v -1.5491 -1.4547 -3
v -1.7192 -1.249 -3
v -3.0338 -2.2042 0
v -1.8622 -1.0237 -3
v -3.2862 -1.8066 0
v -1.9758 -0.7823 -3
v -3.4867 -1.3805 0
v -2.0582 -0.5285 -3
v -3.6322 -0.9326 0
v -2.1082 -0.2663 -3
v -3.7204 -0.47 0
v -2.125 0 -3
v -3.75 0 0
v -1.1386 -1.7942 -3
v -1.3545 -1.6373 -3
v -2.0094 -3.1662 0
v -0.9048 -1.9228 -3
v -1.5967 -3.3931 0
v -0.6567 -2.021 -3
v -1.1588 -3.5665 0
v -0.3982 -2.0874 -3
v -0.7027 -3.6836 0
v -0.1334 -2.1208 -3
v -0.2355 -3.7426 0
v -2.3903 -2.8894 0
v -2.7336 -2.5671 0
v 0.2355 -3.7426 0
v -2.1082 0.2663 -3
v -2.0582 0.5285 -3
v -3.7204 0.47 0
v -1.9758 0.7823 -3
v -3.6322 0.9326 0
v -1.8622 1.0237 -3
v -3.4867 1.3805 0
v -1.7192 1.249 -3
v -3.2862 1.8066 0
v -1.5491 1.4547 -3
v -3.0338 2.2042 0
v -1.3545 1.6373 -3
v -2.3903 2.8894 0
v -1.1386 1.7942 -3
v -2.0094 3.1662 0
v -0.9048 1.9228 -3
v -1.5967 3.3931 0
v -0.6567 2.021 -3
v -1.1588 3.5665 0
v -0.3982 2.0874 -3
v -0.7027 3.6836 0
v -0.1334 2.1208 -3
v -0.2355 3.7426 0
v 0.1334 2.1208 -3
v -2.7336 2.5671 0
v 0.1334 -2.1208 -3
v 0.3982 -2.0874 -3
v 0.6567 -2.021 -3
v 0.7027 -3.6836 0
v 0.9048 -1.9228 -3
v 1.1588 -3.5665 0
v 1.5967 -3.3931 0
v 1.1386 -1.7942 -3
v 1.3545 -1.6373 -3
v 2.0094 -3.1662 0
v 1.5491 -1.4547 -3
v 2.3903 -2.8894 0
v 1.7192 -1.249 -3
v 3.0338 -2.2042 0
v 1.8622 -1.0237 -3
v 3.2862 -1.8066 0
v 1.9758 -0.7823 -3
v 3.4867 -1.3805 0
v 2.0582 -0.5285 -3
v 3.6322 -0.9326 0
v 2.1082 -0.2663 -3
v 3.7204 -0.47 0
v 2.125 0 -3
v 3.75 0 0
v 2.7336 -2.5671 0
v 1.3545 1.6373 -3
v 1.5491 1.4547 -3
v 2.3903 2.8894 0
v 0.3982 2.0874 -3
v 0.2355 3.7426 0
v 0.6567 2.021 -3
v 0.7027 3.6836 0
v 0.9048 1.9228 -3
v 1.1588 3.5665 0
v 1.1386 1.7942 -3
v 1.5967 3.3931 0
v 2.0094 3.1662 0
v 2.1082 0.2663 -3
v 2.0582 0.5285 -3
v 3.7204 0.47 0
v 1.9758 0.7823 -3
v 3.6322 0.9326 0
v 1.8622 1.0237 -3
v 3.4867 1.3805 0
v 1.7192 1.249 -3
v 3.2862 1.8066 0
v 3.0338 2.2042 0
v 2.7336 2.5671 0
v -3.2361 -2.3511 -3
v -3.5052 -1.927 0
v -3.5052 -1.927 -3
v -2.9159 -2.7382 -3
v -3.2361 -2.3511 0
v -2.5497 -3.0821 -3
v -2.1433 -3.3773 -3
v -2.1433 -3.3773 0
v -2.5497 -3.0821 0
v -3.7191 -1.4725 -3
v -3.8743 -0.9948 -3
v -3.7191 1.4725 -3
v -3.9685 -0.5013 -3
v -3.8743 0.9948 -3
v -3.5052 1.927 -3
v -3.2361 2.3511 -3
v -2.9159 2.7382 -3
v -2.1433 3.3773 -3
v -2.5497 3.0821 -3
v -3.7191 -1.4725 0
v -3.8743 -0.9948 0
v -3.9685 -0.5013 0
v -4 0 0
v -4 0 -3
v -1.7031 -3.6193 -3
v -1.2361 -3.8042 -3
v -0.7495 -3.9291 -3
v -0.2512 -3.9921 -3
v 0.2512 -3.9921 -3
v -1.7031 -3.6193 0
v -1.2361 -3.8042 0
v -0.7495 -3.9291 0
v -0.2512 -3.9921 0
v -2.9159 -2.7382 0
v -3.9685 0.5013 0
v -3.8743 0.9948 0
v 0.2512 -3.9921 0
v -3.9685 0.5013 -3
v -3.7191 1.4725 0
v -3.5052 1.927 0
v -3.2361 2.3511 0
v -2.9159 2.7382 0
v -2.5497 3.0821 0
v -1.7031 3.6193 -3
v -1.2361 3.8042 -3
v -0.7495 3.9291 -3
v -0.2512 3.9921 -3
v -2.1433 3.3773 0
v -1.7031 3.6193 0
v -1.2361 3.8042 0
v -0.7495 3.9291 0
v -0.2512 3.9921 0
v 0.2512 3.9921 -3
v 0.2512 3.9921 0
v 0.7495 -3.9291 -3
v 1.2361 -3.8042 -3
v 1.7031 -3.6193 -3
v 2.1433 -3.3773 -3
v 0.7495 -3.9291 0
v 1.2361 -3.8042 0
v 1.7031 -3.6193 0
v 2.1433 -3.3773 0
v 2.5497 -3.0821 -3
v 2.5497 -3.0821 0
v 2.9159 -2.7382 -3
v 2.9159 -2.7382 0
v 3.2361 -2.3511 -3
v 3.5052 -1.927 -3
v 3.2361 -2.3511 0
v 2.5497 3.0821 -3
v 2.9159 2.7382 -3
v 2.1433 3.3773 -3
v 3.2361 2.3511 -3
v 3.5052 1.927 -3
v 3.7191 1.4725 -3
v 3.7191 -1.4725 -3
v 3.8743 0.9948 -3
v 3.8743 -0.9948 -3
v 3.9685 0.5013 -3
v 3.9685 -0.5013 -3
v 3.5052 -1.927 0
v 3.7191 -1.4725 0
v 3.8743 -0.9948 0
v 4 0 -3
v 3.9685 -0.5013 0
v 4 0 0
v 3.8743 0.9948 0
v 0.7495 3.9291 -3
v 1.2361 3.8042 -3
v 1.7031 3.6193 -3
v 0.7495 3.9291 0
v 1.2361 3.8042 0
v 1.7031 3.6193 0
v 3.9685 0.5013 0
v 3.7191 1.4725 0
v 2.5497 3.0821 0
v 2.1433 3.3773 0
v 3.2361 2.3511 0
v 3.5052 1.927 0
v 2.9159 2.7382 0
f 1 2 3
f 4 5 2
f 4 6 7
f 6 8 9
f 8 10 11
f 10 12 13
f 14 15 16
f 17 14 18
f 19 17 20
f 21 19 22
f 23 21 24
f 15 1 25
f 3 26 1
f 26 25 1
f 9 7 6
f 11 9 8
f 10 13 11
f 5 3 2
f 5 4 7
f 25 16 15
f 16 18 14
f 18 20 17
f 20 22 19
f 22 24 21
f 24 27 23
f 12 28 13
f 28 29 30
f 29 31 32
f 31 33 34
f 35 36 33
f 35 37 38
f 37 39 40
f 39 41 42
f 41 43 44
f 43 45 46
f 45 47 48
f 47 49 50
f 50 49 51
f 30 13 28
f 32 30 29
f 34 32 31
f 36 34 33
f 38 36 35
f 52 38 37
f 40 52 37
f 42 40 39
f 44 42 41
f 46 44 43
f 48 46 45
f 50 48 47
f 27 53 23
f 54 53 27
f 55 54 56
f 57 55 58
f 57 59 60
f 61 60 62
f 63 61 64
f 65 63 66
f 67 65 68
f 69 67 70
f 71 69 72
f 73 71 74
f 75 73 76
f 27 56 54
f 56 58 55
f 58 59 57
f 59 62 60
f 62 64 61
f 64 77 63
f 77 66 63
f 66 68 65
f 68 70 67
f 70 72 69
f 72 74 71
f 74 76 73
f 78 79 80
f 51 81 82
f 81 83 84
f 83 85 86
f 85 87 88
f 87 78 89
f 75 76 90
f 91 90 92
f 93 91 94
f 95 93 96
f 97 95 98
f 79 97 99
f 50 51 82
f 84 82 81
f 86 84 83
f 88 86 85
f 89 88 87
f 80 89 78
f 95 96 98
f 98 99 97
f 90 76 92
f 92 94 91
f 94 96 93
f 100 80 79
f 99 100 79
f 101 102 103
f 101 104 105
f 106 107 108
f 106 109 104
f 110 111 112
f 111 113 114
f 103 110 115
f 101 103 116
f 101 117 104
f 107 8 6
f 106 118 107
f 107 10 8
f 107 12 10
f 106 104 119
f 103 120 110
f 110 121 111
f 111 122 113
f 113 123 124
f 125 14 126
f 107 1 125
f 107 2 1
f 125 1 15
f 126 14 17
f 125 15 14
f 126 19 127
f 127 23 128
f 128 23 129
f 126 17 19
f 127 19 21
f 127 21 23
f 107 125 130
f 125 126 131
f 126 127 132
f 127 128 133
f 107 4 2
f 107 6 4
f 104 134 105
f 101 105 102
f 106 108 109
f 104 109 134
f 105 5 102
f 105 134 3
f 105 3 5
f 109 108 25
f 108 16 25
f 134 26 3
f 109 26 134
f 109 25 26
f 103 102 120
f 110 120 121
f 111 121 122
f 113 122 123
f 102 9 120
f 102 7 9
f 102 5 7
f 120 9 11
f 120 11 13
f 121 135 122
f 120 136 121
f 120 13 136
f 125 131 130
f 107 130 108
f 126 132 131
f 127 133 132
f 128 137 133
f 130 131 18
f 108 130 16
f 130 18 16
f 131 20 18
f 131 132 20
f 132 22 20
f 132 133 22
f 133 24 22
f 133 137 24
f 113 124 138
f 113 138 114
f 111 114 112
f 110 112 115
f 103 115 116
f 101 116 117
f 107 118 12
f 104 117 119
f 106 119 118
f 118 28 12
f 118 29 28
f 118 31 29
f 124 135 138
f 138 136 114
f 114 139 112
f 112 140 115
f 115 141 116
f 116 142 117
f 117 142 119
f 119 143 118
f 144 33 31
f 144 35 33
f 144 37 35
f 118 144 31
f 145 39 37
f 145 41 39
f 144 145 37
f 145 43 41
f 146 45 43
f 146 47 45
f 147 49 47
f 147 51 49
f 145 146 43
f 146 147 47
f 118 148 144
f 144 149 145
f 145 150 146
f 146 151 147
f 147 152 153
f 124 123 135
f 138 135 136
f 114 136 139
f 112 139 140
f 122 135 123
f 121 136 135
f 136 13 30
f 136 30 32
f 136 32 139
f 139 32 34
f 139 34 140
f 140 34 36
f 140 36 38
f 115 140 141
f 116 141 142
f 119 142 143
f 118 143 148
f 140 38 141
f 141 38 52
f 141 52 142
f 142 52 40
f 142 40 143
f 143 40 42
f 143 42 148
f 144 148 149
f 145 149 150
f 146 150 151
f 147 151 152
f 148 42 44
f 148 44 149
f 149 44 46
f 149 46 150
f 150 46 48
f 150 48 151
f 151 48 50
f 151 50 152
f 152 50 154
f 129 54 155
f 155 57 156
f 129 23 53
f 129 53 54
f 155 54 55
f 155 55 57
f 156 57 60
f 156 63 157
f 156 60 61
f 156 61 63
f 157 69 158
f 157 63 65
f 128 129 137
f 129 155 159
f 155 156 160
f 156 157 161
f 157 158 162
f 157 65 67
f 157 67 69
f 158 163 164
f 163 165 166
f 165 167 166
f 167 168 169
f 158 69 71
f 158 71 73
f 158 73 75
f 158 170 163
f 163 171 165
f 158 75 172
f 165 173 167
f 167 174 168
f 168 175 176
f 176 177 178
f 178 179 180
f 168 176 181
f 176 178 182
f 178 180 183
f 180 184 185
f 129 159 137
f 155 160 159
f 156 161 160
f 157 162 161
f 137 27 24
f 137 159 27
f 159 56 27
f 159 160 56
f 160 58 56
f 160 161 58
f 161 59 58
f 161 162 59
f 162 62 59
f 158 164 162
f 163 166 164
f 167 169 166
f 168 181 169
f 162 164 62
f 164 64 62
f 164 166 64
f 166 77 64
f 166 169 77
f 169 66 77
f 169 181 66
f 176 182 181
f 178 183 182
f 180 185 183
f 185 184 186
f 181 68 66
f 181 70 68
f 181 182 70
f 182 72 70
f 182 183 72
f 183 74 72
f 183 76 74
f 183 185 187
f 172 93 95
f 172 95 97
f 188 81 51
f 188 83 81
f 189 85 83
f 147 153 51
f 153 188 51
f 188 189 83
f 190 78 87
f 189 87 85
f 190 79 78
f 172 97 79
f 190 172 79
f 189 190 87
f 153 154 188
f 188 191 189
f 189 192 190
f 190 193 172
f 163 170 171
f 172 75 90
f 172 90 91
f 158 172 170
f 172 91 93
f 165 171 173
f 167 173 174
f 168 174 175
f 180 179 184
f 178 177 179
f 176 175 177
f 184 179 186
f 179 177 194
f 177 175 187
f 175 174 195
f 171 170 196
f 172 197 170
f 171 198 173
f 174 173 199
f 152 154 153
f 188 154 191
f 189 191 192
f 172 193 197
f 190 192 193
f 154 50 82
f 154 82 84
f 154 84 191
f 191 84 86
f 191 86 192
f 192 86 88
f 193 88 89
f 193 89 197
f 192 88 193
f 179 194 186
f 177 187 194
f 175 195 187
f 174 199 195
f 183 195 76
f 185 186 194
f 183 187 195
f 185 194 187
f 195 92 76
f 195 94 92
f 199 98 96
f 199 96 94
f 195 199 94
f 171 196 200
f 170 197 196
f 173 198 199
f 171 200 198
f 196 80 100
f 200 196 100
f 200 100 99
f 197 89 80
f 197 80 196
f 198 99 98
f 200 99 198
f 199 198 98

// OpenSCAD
$fn = 50;

difference() {
	union() {
		translate(v = [0, 0, -3.0]) {
			cylinder(h = 3, r = 4.0);
		}
	}
	union() {
		translate(v = [0, 0, 0]) {
			rotate(a = [0, 0, 0]) {
				difference() {
					union() {
						translate(v = [0, 0, -6.0]) {
							cylinder(h = 6, r = 2.0);
						}
						translate(v = [0, 0, -3]) {
							cylinder(h = 3, r1 = 2.125, r2 = 3.75);
						}
						translate(v = [0, 0, -6.0]) {
							cylinder(h = 6, r = 2.125);
						}
						translate(v = [0, 0, -6.0]) {
							cylinder(h = 6, r = 2.0);
						}
					}
					union();
				}
			}
		}
	}
}
